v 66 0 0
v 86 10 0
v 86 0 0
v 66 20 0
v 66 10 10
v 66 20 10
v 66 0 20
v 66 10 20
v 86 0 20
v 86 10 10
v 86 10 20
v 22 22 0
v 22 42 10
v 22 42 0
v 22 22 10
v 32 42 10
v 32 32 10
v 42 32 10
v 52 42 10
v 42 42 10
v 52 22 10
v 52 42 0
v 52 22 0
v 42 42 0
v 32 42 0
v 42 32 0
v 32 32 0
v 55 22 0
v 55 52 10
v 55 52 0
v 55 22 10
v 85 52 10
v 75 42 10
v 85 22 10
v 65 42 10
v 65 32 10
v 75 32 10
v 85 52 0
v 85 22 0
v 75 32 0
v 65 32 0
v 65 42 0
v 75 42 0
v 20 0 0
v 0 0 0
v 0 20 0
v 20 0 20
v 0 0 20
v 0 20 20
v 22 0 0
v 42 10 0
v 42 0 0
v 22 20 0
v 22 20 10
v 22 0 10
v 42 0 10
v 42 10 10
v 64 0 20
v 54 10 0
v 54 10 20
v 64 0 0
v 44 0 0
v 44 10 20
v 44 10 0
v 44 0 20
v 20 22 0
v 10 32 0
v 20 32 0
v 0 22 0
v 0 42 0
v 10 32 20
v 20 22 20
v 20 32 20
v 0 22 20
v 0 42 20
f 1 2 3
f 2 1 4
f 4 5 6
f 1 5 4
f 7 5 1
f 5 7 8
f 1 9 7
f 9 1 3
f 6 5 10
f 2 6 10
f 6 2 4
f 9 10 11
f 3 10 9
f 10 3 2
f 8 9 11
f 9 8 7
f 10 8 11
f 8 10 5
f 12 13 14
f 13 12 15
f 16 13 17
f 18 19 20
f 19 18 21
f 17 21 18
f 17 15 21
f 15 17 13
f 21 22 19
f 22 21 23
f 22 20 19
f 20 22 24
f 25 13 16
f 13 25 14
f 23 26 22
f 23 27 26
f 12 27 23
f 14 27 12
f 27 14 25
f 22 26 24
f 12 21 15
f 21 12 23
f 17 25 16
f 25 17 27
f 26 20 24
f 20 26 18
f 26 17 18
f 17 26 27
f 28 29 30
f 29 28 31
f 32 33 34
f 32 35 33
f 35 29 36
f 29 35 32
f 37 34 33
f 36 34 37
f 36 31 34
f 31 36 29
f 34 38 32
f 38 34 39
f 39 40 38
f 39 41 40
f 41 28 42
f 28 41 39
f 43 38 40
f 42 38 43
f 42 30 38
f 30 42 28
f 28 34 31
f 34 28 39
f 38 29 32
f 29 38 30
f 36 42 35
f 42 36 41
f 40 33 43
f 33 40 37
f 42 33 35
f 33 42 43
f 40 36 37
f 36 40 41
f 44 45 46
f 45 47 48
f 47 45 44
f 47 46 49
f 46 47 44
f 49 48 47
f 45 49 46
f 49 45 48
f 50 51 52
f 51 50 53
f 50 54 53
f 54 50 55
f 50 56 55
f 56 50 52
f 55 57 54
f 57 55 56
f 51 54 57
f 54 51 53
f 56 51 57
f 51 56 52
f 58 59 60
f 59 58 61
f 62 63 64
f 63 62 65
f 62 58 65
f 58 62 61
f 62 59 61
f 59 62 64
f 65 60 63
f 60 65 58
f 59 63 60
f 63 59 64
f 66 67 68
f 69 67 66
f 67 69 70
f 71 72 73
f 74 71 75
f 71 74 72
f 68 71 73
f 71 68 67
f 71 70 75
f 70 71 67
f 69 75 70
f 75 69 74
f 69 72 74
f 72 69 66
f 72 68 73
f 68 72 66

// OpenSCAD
fig01();
translate([22,0,0]) fig02();
translate([44,0,0])  fig03();
translate([66,0,0])  fig04();
translate([0,22,0])  fig05();
translate([22,22,0])  fig06();
translate([55,22,0])  fig07();

//fig07();


module fig01(){
linear_extrude(height=20){polygon([[0,0],[20,0],[0,20]]);};}

module fig02(){linear_extrude(height=10){ polygon([[0,0],[20,0],[20,10],[0,20]]);};}

module fig03(){linear_extrude(height=20){ polygon([[0,0],[20,0],[10,10],[0,10]]);};}

module fig04(){union(){
    fig02();
    translate([0,0,10]) cube([20,10,10]);
}
}

module fig05(){linear_extrude(height=20){ polygon([[0,0],[20,0],[20,10],[10,10],[0,20]]);};}

module fig06(){
    difference(){
        cube([30,20,10]);
        translate([10,10,0]) cube([10,10,20]);
    }
}
        
module fig07(){
    difference(){
        cube([30,30,10]);
        translate([10,10,0]) cube([10,10,20]);
    }
}
